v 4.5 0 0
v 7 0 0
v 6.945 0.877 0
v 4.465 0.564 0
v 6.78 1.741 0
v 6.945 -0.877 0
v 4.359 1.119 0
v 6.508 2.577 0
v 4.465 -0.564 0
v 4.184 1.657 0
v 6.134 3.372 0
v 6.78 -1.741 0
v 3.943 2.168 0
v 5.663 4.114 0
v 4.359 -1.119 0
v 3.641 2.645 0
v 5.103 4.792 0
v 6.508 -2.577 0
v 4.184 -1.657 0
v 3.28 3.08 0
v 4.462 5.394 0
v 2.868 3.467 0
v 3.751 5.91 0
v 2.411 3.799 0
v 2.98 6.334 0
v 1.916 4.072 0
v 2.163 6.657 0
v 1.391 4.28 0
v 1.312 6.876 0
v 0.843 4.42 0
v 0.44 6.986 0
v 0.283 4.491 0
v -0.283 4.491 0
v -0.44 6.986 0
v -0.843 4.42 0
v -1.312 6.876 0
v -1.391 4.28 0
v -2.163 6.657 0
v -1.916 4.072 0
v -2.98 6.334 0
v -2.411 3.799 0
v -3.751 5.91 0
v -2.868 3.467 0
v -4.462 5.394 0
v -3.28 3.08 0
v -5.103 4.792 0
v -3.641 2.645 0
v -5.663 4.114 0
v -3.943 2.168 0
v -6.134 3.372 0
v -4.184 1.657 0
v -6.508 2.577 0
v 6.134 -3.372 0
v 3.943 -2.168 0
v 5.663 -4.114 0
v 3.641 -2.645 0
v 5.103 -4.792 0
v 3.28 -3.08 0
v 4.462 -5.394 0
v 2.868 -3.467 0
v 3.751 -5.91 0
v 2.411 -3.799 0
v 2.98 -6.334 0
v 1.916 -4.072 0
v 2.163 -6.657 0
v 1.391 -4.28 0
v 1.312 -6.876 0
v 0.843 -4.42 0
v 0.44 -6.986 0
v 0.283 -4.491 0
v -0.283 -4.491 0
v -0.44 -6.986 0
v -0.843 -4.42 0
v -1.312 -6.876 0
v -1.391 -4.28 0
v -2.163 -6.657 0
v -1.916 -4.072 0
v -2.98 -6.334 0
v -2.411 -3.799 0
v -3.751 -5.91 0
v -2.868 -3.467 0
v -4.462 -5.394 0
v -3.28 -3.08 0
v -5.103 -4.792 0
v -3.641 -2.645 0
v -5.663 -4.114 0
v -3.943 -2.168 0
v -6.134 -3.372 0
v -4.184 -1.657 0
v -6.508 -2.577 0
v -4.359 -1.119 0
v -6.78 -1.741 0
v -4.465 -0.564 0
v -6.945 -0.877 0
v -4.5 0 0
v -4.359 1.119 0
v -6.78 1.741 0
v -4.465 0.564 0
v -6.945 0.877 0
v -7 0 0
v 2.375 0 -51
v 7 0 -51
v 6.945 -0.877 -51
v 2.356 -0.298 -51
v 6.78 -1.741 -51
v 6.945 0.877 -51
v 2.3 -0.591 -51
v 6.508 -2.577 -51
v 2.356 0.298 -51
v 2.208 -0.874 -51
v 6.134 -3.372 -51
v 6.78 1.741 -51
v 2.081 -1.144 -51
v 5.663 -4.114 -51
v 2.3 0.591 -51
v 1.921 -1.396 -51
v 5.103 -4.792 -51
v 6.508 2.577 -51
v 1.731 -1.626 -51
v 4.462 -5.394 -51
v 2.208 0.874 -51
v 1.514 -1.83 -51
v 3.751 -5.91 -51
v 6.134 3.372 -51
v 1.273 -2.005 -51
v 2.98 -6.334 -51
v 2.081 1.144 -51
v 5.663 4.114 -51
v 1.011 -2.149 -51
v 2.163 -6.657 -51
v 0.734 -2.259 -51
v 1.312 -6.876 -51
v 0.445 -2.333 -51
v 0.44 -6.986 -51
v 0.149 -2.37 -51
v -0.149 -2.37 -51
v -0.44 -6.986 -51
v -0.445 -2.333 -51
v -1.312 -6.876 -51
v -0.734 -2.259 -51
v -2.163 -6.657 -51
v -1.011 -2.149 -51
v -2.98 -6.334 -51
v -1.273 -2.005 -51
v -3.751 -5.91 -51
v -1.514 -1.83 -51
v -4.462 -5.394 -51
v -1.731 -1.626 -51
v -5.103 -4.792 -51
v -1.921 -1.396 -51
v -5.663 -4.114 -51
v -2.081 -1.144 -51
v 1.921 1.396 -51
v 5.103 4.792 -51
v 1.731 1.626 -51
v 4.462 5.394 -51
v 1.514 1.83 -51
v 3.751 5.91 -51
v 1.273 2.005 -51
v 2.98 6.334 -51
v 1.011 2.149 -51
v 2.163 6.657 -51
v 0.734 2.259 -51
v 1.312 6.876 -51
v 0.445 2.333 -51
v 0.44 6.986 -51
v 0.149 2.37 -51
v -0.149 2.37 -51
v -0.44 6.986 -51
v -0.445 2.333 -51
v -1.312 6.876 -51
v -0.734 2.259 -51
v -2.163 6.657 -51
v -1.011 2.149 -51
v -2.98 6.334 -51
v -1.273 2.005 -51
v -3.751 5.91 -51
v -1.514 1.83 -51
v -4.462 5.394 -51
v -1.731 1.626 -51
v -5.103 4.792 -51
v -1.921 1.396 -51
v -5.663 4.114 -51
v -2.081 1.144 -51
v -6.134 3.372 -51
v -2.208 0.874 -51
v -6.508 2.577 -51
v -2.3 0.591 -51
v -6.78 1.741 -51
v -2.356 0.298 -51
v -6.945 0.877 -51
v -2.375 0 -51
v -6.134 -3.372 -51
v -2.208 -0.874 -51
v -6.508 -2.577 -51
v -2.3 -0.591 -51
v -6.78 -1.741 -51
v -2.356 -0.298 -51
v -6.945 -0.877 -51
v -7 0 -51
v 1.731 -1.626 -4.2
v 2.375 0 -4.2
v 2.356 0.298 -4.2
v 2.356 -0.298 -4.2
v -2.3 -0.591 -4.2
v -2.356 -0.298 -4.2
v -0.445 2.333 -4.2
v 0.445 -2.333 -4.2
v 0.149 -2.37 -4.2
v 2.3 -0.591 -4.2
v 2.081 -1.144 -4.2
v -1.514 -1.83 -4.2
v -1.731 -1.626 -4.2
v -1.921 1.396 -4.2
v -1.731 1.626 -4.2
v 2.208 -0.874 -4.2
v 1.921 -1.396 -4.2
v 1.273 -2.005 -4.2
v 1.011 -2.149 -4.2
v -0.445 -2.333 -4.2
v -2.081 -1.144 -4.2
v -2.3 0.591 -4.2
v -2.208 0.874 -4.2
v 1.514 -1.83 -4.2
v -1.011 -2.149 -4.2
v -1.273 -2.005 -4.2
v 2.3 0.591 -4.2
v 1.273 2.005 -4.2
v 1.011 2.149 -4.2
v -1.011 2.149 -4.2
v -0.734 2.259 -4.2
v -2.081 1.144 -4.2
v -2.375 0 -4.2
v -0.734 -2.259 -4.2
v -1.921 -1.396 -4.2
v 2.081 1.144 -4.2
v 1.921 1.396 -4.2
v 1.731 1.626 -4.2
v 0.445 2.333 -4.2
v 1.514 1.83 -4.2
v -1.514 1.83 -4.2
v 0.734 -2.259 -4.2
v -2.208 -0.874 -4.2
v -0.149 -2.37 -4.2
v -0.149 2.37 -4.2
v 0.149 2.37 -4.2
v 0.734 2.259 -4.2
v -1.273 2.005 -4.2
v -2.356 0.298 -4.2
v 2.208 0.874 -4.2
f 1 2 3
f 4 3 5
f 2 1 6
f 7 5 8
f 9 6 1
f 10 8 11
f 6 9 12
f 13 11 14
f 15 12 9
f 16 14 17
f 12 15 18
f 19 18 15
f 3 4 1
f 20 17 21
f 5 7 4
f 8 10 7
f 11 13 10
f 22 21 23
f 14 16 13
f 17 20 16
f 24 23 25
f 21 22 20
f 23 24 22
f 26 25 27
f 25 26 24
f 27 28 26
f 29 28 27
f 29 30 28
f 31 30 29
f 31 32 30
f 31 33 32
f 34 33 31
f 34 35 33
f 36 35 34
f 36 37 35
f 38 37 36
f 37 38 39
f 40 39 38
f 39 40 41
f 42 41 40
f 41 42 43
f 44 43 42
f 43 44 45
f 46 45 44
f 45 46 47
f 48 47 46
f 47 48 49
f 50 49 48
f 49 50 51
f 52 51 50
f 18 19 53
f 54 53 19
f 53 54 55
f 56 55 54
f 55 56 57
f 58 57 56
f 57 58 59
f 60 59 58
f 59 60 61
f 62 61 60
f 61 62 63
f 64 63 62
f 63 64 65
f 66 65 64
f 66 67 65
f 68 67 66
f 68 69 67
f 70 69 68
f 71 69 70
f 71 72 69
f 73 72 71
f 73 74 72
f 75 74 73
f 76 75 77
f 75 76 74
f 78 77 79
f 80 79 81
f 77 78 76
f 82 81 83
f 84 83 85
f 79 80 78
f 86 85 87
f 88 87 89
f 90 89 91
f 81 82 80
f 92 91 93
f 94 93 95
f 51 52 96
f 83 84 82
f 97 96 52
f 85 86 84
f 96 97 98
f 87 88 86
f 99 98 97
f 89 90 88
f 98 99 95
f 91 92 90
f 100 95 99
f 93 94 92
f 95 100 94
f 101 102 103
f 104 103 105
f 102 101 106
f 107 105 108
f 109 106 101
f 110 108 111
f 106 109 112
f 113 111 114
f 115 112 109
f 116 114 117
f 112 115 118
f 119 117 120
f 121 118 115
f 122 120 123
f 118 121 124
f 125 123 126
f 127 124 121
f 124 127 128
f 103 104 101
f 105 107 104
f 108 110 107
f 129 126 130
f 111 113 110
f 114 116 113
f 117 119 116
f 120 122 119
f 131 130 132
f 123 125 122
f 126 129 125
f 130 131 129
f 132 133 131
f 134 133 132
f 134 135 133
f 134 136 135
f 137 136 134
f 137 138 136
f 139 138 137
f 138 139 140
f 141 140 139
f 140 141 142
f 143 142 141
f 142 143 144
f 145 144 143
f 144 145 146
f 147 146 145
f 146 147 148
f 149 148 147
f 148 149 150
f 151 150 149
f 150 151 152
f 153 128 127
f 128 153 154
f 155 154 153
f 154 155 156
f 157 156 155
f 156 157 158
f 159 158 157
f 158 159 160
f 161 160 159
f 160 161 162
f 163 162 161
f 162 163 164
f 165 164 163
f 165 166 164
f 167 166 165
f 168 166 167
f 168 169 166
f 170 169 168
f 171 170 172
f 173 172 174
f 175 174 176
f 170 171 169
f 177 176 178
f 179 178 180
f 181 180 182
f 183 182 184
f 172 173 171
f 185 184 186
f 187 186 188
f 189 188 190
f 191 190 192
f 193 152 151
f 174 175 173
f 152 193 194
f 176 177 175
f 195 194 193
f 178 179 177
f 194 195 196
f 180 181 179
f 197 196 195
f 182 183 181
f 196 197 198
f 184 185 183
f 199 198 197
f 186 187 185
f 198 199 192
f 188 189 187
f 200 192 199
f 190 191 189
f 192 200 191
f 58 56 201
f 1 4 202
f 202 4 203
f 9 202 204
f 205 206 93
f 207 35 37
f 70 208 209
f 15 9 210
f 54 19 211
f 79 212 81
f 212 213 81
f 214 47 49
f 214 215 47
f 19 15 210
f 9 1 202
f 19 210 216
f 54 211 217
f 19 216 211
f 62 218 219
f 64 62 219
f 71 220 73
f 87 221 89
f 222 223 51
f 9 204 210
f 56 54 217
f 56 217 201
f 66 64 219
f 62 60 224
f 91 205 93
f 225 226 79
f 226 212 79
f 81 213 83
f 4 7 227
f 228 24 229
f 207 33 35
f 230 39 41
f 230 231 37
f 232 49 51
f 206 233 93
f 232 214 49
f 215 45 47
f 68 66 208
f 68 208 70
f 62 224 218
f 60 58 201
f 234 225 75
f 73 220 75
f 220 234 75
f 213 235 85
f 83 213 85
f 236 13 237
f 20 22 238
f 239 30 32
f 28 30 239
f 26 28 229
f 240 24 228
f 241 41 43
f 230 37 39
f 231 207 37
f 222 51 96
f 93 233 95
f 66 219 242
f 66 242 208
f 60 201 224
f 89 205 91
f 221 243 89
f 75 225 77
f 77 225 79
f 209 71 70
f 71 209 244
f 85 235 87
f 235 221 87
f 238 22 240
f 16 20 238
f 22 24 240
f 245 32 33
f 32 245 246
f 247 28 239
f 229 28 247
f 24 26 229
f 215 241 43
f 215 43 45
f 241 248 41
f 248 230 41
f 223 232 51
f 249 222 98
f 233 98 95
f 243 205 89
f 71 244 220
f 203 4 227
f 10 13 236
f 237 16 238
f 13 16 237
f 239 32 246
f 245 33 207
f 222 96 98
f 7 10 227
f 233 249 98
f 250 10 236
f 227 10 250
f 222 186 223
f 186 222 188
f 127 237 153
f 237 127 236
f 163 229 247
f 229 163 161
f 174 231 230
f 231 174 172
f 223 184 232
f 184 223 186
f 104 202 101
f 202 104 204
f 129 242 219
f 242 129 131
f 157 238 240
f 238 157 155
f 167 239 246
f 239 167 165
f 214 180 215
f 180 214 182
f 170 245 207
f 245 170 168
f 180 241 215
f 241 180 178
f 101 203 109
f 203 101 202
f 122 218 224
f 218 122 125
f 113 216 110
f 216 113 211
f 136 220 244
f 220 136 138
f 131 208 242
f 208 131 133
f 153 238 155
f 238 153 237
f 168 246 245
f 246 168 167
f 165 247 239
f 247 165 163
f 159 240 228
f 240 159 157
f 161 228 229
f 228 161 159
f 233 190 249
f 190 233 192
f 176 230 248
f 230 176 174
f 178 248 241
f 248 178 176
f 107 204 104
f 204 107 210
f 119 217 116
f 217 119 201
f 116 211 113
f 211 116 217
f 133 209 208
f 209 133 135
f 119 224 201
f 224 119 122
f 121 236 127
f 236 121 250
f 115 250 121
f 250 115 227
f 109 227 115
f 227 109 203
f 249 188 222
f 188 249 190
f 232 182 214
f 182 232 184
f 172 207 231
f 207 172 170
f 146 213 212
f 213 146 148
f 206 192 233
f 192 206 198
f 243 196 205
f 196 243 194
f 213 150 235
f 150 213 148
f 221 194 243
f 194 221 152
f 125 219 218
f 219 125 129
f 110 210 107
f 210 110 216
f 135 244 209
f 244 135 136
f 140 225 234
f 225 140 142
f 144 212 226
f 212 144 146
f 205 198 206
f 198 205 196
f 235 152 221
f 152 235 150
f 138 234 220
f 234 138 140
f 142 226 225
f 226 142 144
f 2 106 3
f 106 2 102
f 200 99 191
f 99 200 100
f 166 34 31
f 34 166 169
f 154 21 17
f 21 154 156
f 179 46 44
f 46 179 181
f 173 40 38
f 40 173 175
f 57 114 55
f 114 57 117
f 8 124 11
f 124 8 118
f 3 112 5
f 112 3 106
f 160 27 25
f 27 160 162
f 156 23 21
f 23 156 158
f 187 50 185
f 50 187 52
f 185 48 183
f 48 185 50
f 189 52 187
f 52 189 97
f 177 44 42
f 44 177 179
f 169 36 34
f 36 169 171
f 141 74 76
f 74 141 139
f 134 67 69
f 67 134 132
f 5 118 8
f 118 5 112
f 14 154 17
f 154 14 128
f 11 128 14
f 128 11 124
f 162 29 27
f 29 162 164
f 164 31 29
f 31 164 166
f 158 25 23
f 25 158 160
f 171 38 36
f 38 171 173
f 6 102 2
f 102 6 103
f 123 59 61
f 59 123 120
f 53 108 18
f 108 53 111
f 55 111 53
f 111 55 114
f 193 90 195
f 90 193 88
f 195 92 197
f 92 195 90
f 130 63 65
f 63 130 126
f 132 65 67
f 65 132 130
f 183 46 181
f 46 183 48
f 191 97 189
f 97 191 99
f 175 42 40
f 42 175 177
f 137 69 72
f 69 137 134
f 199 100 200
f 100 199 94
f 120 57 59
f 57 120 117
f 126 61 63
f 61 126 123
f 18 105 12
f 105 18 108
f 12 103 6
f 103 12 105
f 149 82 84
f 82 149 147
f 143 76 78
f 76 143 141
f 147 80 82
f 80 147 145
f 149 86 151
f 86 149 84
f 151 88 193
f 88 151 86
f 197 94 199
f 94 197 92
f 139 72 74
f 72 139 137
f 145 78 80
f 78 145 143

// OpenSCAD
$fn = 50;


difference() {
	union() {
		translate(v = [0, 0, -51.0000000000]) {
			cylinder(h = 51, r = 7.0000000000);
		}
	}
	union() {
		translate(v = [0, 0, 0]) {
			rotate(a = [0, 0, 0]) {
				difference() {
					union() {
						#translate(v = [0, 0, -51.0000000000]) {
							cylinder(h = 51, r = 2.2500000000);
						}
						#translate(v = [0, 0, -4.2000000000]) {
							cylinder(h = 4.2000000000, r1 = 2.3750000000, r2 = 4.5000000000);
						}
						#translate(v = [0, 0, -51.0000000000]) {
							cylinder(h = 51, r = 2.3750000000);
						}
						#translate(v = [0, 0, -51.0000000000]) {
							cylinder(h = 51, r = 2.2500000000);
						}
					}
					union();
				}
			}
		}
	}
}
